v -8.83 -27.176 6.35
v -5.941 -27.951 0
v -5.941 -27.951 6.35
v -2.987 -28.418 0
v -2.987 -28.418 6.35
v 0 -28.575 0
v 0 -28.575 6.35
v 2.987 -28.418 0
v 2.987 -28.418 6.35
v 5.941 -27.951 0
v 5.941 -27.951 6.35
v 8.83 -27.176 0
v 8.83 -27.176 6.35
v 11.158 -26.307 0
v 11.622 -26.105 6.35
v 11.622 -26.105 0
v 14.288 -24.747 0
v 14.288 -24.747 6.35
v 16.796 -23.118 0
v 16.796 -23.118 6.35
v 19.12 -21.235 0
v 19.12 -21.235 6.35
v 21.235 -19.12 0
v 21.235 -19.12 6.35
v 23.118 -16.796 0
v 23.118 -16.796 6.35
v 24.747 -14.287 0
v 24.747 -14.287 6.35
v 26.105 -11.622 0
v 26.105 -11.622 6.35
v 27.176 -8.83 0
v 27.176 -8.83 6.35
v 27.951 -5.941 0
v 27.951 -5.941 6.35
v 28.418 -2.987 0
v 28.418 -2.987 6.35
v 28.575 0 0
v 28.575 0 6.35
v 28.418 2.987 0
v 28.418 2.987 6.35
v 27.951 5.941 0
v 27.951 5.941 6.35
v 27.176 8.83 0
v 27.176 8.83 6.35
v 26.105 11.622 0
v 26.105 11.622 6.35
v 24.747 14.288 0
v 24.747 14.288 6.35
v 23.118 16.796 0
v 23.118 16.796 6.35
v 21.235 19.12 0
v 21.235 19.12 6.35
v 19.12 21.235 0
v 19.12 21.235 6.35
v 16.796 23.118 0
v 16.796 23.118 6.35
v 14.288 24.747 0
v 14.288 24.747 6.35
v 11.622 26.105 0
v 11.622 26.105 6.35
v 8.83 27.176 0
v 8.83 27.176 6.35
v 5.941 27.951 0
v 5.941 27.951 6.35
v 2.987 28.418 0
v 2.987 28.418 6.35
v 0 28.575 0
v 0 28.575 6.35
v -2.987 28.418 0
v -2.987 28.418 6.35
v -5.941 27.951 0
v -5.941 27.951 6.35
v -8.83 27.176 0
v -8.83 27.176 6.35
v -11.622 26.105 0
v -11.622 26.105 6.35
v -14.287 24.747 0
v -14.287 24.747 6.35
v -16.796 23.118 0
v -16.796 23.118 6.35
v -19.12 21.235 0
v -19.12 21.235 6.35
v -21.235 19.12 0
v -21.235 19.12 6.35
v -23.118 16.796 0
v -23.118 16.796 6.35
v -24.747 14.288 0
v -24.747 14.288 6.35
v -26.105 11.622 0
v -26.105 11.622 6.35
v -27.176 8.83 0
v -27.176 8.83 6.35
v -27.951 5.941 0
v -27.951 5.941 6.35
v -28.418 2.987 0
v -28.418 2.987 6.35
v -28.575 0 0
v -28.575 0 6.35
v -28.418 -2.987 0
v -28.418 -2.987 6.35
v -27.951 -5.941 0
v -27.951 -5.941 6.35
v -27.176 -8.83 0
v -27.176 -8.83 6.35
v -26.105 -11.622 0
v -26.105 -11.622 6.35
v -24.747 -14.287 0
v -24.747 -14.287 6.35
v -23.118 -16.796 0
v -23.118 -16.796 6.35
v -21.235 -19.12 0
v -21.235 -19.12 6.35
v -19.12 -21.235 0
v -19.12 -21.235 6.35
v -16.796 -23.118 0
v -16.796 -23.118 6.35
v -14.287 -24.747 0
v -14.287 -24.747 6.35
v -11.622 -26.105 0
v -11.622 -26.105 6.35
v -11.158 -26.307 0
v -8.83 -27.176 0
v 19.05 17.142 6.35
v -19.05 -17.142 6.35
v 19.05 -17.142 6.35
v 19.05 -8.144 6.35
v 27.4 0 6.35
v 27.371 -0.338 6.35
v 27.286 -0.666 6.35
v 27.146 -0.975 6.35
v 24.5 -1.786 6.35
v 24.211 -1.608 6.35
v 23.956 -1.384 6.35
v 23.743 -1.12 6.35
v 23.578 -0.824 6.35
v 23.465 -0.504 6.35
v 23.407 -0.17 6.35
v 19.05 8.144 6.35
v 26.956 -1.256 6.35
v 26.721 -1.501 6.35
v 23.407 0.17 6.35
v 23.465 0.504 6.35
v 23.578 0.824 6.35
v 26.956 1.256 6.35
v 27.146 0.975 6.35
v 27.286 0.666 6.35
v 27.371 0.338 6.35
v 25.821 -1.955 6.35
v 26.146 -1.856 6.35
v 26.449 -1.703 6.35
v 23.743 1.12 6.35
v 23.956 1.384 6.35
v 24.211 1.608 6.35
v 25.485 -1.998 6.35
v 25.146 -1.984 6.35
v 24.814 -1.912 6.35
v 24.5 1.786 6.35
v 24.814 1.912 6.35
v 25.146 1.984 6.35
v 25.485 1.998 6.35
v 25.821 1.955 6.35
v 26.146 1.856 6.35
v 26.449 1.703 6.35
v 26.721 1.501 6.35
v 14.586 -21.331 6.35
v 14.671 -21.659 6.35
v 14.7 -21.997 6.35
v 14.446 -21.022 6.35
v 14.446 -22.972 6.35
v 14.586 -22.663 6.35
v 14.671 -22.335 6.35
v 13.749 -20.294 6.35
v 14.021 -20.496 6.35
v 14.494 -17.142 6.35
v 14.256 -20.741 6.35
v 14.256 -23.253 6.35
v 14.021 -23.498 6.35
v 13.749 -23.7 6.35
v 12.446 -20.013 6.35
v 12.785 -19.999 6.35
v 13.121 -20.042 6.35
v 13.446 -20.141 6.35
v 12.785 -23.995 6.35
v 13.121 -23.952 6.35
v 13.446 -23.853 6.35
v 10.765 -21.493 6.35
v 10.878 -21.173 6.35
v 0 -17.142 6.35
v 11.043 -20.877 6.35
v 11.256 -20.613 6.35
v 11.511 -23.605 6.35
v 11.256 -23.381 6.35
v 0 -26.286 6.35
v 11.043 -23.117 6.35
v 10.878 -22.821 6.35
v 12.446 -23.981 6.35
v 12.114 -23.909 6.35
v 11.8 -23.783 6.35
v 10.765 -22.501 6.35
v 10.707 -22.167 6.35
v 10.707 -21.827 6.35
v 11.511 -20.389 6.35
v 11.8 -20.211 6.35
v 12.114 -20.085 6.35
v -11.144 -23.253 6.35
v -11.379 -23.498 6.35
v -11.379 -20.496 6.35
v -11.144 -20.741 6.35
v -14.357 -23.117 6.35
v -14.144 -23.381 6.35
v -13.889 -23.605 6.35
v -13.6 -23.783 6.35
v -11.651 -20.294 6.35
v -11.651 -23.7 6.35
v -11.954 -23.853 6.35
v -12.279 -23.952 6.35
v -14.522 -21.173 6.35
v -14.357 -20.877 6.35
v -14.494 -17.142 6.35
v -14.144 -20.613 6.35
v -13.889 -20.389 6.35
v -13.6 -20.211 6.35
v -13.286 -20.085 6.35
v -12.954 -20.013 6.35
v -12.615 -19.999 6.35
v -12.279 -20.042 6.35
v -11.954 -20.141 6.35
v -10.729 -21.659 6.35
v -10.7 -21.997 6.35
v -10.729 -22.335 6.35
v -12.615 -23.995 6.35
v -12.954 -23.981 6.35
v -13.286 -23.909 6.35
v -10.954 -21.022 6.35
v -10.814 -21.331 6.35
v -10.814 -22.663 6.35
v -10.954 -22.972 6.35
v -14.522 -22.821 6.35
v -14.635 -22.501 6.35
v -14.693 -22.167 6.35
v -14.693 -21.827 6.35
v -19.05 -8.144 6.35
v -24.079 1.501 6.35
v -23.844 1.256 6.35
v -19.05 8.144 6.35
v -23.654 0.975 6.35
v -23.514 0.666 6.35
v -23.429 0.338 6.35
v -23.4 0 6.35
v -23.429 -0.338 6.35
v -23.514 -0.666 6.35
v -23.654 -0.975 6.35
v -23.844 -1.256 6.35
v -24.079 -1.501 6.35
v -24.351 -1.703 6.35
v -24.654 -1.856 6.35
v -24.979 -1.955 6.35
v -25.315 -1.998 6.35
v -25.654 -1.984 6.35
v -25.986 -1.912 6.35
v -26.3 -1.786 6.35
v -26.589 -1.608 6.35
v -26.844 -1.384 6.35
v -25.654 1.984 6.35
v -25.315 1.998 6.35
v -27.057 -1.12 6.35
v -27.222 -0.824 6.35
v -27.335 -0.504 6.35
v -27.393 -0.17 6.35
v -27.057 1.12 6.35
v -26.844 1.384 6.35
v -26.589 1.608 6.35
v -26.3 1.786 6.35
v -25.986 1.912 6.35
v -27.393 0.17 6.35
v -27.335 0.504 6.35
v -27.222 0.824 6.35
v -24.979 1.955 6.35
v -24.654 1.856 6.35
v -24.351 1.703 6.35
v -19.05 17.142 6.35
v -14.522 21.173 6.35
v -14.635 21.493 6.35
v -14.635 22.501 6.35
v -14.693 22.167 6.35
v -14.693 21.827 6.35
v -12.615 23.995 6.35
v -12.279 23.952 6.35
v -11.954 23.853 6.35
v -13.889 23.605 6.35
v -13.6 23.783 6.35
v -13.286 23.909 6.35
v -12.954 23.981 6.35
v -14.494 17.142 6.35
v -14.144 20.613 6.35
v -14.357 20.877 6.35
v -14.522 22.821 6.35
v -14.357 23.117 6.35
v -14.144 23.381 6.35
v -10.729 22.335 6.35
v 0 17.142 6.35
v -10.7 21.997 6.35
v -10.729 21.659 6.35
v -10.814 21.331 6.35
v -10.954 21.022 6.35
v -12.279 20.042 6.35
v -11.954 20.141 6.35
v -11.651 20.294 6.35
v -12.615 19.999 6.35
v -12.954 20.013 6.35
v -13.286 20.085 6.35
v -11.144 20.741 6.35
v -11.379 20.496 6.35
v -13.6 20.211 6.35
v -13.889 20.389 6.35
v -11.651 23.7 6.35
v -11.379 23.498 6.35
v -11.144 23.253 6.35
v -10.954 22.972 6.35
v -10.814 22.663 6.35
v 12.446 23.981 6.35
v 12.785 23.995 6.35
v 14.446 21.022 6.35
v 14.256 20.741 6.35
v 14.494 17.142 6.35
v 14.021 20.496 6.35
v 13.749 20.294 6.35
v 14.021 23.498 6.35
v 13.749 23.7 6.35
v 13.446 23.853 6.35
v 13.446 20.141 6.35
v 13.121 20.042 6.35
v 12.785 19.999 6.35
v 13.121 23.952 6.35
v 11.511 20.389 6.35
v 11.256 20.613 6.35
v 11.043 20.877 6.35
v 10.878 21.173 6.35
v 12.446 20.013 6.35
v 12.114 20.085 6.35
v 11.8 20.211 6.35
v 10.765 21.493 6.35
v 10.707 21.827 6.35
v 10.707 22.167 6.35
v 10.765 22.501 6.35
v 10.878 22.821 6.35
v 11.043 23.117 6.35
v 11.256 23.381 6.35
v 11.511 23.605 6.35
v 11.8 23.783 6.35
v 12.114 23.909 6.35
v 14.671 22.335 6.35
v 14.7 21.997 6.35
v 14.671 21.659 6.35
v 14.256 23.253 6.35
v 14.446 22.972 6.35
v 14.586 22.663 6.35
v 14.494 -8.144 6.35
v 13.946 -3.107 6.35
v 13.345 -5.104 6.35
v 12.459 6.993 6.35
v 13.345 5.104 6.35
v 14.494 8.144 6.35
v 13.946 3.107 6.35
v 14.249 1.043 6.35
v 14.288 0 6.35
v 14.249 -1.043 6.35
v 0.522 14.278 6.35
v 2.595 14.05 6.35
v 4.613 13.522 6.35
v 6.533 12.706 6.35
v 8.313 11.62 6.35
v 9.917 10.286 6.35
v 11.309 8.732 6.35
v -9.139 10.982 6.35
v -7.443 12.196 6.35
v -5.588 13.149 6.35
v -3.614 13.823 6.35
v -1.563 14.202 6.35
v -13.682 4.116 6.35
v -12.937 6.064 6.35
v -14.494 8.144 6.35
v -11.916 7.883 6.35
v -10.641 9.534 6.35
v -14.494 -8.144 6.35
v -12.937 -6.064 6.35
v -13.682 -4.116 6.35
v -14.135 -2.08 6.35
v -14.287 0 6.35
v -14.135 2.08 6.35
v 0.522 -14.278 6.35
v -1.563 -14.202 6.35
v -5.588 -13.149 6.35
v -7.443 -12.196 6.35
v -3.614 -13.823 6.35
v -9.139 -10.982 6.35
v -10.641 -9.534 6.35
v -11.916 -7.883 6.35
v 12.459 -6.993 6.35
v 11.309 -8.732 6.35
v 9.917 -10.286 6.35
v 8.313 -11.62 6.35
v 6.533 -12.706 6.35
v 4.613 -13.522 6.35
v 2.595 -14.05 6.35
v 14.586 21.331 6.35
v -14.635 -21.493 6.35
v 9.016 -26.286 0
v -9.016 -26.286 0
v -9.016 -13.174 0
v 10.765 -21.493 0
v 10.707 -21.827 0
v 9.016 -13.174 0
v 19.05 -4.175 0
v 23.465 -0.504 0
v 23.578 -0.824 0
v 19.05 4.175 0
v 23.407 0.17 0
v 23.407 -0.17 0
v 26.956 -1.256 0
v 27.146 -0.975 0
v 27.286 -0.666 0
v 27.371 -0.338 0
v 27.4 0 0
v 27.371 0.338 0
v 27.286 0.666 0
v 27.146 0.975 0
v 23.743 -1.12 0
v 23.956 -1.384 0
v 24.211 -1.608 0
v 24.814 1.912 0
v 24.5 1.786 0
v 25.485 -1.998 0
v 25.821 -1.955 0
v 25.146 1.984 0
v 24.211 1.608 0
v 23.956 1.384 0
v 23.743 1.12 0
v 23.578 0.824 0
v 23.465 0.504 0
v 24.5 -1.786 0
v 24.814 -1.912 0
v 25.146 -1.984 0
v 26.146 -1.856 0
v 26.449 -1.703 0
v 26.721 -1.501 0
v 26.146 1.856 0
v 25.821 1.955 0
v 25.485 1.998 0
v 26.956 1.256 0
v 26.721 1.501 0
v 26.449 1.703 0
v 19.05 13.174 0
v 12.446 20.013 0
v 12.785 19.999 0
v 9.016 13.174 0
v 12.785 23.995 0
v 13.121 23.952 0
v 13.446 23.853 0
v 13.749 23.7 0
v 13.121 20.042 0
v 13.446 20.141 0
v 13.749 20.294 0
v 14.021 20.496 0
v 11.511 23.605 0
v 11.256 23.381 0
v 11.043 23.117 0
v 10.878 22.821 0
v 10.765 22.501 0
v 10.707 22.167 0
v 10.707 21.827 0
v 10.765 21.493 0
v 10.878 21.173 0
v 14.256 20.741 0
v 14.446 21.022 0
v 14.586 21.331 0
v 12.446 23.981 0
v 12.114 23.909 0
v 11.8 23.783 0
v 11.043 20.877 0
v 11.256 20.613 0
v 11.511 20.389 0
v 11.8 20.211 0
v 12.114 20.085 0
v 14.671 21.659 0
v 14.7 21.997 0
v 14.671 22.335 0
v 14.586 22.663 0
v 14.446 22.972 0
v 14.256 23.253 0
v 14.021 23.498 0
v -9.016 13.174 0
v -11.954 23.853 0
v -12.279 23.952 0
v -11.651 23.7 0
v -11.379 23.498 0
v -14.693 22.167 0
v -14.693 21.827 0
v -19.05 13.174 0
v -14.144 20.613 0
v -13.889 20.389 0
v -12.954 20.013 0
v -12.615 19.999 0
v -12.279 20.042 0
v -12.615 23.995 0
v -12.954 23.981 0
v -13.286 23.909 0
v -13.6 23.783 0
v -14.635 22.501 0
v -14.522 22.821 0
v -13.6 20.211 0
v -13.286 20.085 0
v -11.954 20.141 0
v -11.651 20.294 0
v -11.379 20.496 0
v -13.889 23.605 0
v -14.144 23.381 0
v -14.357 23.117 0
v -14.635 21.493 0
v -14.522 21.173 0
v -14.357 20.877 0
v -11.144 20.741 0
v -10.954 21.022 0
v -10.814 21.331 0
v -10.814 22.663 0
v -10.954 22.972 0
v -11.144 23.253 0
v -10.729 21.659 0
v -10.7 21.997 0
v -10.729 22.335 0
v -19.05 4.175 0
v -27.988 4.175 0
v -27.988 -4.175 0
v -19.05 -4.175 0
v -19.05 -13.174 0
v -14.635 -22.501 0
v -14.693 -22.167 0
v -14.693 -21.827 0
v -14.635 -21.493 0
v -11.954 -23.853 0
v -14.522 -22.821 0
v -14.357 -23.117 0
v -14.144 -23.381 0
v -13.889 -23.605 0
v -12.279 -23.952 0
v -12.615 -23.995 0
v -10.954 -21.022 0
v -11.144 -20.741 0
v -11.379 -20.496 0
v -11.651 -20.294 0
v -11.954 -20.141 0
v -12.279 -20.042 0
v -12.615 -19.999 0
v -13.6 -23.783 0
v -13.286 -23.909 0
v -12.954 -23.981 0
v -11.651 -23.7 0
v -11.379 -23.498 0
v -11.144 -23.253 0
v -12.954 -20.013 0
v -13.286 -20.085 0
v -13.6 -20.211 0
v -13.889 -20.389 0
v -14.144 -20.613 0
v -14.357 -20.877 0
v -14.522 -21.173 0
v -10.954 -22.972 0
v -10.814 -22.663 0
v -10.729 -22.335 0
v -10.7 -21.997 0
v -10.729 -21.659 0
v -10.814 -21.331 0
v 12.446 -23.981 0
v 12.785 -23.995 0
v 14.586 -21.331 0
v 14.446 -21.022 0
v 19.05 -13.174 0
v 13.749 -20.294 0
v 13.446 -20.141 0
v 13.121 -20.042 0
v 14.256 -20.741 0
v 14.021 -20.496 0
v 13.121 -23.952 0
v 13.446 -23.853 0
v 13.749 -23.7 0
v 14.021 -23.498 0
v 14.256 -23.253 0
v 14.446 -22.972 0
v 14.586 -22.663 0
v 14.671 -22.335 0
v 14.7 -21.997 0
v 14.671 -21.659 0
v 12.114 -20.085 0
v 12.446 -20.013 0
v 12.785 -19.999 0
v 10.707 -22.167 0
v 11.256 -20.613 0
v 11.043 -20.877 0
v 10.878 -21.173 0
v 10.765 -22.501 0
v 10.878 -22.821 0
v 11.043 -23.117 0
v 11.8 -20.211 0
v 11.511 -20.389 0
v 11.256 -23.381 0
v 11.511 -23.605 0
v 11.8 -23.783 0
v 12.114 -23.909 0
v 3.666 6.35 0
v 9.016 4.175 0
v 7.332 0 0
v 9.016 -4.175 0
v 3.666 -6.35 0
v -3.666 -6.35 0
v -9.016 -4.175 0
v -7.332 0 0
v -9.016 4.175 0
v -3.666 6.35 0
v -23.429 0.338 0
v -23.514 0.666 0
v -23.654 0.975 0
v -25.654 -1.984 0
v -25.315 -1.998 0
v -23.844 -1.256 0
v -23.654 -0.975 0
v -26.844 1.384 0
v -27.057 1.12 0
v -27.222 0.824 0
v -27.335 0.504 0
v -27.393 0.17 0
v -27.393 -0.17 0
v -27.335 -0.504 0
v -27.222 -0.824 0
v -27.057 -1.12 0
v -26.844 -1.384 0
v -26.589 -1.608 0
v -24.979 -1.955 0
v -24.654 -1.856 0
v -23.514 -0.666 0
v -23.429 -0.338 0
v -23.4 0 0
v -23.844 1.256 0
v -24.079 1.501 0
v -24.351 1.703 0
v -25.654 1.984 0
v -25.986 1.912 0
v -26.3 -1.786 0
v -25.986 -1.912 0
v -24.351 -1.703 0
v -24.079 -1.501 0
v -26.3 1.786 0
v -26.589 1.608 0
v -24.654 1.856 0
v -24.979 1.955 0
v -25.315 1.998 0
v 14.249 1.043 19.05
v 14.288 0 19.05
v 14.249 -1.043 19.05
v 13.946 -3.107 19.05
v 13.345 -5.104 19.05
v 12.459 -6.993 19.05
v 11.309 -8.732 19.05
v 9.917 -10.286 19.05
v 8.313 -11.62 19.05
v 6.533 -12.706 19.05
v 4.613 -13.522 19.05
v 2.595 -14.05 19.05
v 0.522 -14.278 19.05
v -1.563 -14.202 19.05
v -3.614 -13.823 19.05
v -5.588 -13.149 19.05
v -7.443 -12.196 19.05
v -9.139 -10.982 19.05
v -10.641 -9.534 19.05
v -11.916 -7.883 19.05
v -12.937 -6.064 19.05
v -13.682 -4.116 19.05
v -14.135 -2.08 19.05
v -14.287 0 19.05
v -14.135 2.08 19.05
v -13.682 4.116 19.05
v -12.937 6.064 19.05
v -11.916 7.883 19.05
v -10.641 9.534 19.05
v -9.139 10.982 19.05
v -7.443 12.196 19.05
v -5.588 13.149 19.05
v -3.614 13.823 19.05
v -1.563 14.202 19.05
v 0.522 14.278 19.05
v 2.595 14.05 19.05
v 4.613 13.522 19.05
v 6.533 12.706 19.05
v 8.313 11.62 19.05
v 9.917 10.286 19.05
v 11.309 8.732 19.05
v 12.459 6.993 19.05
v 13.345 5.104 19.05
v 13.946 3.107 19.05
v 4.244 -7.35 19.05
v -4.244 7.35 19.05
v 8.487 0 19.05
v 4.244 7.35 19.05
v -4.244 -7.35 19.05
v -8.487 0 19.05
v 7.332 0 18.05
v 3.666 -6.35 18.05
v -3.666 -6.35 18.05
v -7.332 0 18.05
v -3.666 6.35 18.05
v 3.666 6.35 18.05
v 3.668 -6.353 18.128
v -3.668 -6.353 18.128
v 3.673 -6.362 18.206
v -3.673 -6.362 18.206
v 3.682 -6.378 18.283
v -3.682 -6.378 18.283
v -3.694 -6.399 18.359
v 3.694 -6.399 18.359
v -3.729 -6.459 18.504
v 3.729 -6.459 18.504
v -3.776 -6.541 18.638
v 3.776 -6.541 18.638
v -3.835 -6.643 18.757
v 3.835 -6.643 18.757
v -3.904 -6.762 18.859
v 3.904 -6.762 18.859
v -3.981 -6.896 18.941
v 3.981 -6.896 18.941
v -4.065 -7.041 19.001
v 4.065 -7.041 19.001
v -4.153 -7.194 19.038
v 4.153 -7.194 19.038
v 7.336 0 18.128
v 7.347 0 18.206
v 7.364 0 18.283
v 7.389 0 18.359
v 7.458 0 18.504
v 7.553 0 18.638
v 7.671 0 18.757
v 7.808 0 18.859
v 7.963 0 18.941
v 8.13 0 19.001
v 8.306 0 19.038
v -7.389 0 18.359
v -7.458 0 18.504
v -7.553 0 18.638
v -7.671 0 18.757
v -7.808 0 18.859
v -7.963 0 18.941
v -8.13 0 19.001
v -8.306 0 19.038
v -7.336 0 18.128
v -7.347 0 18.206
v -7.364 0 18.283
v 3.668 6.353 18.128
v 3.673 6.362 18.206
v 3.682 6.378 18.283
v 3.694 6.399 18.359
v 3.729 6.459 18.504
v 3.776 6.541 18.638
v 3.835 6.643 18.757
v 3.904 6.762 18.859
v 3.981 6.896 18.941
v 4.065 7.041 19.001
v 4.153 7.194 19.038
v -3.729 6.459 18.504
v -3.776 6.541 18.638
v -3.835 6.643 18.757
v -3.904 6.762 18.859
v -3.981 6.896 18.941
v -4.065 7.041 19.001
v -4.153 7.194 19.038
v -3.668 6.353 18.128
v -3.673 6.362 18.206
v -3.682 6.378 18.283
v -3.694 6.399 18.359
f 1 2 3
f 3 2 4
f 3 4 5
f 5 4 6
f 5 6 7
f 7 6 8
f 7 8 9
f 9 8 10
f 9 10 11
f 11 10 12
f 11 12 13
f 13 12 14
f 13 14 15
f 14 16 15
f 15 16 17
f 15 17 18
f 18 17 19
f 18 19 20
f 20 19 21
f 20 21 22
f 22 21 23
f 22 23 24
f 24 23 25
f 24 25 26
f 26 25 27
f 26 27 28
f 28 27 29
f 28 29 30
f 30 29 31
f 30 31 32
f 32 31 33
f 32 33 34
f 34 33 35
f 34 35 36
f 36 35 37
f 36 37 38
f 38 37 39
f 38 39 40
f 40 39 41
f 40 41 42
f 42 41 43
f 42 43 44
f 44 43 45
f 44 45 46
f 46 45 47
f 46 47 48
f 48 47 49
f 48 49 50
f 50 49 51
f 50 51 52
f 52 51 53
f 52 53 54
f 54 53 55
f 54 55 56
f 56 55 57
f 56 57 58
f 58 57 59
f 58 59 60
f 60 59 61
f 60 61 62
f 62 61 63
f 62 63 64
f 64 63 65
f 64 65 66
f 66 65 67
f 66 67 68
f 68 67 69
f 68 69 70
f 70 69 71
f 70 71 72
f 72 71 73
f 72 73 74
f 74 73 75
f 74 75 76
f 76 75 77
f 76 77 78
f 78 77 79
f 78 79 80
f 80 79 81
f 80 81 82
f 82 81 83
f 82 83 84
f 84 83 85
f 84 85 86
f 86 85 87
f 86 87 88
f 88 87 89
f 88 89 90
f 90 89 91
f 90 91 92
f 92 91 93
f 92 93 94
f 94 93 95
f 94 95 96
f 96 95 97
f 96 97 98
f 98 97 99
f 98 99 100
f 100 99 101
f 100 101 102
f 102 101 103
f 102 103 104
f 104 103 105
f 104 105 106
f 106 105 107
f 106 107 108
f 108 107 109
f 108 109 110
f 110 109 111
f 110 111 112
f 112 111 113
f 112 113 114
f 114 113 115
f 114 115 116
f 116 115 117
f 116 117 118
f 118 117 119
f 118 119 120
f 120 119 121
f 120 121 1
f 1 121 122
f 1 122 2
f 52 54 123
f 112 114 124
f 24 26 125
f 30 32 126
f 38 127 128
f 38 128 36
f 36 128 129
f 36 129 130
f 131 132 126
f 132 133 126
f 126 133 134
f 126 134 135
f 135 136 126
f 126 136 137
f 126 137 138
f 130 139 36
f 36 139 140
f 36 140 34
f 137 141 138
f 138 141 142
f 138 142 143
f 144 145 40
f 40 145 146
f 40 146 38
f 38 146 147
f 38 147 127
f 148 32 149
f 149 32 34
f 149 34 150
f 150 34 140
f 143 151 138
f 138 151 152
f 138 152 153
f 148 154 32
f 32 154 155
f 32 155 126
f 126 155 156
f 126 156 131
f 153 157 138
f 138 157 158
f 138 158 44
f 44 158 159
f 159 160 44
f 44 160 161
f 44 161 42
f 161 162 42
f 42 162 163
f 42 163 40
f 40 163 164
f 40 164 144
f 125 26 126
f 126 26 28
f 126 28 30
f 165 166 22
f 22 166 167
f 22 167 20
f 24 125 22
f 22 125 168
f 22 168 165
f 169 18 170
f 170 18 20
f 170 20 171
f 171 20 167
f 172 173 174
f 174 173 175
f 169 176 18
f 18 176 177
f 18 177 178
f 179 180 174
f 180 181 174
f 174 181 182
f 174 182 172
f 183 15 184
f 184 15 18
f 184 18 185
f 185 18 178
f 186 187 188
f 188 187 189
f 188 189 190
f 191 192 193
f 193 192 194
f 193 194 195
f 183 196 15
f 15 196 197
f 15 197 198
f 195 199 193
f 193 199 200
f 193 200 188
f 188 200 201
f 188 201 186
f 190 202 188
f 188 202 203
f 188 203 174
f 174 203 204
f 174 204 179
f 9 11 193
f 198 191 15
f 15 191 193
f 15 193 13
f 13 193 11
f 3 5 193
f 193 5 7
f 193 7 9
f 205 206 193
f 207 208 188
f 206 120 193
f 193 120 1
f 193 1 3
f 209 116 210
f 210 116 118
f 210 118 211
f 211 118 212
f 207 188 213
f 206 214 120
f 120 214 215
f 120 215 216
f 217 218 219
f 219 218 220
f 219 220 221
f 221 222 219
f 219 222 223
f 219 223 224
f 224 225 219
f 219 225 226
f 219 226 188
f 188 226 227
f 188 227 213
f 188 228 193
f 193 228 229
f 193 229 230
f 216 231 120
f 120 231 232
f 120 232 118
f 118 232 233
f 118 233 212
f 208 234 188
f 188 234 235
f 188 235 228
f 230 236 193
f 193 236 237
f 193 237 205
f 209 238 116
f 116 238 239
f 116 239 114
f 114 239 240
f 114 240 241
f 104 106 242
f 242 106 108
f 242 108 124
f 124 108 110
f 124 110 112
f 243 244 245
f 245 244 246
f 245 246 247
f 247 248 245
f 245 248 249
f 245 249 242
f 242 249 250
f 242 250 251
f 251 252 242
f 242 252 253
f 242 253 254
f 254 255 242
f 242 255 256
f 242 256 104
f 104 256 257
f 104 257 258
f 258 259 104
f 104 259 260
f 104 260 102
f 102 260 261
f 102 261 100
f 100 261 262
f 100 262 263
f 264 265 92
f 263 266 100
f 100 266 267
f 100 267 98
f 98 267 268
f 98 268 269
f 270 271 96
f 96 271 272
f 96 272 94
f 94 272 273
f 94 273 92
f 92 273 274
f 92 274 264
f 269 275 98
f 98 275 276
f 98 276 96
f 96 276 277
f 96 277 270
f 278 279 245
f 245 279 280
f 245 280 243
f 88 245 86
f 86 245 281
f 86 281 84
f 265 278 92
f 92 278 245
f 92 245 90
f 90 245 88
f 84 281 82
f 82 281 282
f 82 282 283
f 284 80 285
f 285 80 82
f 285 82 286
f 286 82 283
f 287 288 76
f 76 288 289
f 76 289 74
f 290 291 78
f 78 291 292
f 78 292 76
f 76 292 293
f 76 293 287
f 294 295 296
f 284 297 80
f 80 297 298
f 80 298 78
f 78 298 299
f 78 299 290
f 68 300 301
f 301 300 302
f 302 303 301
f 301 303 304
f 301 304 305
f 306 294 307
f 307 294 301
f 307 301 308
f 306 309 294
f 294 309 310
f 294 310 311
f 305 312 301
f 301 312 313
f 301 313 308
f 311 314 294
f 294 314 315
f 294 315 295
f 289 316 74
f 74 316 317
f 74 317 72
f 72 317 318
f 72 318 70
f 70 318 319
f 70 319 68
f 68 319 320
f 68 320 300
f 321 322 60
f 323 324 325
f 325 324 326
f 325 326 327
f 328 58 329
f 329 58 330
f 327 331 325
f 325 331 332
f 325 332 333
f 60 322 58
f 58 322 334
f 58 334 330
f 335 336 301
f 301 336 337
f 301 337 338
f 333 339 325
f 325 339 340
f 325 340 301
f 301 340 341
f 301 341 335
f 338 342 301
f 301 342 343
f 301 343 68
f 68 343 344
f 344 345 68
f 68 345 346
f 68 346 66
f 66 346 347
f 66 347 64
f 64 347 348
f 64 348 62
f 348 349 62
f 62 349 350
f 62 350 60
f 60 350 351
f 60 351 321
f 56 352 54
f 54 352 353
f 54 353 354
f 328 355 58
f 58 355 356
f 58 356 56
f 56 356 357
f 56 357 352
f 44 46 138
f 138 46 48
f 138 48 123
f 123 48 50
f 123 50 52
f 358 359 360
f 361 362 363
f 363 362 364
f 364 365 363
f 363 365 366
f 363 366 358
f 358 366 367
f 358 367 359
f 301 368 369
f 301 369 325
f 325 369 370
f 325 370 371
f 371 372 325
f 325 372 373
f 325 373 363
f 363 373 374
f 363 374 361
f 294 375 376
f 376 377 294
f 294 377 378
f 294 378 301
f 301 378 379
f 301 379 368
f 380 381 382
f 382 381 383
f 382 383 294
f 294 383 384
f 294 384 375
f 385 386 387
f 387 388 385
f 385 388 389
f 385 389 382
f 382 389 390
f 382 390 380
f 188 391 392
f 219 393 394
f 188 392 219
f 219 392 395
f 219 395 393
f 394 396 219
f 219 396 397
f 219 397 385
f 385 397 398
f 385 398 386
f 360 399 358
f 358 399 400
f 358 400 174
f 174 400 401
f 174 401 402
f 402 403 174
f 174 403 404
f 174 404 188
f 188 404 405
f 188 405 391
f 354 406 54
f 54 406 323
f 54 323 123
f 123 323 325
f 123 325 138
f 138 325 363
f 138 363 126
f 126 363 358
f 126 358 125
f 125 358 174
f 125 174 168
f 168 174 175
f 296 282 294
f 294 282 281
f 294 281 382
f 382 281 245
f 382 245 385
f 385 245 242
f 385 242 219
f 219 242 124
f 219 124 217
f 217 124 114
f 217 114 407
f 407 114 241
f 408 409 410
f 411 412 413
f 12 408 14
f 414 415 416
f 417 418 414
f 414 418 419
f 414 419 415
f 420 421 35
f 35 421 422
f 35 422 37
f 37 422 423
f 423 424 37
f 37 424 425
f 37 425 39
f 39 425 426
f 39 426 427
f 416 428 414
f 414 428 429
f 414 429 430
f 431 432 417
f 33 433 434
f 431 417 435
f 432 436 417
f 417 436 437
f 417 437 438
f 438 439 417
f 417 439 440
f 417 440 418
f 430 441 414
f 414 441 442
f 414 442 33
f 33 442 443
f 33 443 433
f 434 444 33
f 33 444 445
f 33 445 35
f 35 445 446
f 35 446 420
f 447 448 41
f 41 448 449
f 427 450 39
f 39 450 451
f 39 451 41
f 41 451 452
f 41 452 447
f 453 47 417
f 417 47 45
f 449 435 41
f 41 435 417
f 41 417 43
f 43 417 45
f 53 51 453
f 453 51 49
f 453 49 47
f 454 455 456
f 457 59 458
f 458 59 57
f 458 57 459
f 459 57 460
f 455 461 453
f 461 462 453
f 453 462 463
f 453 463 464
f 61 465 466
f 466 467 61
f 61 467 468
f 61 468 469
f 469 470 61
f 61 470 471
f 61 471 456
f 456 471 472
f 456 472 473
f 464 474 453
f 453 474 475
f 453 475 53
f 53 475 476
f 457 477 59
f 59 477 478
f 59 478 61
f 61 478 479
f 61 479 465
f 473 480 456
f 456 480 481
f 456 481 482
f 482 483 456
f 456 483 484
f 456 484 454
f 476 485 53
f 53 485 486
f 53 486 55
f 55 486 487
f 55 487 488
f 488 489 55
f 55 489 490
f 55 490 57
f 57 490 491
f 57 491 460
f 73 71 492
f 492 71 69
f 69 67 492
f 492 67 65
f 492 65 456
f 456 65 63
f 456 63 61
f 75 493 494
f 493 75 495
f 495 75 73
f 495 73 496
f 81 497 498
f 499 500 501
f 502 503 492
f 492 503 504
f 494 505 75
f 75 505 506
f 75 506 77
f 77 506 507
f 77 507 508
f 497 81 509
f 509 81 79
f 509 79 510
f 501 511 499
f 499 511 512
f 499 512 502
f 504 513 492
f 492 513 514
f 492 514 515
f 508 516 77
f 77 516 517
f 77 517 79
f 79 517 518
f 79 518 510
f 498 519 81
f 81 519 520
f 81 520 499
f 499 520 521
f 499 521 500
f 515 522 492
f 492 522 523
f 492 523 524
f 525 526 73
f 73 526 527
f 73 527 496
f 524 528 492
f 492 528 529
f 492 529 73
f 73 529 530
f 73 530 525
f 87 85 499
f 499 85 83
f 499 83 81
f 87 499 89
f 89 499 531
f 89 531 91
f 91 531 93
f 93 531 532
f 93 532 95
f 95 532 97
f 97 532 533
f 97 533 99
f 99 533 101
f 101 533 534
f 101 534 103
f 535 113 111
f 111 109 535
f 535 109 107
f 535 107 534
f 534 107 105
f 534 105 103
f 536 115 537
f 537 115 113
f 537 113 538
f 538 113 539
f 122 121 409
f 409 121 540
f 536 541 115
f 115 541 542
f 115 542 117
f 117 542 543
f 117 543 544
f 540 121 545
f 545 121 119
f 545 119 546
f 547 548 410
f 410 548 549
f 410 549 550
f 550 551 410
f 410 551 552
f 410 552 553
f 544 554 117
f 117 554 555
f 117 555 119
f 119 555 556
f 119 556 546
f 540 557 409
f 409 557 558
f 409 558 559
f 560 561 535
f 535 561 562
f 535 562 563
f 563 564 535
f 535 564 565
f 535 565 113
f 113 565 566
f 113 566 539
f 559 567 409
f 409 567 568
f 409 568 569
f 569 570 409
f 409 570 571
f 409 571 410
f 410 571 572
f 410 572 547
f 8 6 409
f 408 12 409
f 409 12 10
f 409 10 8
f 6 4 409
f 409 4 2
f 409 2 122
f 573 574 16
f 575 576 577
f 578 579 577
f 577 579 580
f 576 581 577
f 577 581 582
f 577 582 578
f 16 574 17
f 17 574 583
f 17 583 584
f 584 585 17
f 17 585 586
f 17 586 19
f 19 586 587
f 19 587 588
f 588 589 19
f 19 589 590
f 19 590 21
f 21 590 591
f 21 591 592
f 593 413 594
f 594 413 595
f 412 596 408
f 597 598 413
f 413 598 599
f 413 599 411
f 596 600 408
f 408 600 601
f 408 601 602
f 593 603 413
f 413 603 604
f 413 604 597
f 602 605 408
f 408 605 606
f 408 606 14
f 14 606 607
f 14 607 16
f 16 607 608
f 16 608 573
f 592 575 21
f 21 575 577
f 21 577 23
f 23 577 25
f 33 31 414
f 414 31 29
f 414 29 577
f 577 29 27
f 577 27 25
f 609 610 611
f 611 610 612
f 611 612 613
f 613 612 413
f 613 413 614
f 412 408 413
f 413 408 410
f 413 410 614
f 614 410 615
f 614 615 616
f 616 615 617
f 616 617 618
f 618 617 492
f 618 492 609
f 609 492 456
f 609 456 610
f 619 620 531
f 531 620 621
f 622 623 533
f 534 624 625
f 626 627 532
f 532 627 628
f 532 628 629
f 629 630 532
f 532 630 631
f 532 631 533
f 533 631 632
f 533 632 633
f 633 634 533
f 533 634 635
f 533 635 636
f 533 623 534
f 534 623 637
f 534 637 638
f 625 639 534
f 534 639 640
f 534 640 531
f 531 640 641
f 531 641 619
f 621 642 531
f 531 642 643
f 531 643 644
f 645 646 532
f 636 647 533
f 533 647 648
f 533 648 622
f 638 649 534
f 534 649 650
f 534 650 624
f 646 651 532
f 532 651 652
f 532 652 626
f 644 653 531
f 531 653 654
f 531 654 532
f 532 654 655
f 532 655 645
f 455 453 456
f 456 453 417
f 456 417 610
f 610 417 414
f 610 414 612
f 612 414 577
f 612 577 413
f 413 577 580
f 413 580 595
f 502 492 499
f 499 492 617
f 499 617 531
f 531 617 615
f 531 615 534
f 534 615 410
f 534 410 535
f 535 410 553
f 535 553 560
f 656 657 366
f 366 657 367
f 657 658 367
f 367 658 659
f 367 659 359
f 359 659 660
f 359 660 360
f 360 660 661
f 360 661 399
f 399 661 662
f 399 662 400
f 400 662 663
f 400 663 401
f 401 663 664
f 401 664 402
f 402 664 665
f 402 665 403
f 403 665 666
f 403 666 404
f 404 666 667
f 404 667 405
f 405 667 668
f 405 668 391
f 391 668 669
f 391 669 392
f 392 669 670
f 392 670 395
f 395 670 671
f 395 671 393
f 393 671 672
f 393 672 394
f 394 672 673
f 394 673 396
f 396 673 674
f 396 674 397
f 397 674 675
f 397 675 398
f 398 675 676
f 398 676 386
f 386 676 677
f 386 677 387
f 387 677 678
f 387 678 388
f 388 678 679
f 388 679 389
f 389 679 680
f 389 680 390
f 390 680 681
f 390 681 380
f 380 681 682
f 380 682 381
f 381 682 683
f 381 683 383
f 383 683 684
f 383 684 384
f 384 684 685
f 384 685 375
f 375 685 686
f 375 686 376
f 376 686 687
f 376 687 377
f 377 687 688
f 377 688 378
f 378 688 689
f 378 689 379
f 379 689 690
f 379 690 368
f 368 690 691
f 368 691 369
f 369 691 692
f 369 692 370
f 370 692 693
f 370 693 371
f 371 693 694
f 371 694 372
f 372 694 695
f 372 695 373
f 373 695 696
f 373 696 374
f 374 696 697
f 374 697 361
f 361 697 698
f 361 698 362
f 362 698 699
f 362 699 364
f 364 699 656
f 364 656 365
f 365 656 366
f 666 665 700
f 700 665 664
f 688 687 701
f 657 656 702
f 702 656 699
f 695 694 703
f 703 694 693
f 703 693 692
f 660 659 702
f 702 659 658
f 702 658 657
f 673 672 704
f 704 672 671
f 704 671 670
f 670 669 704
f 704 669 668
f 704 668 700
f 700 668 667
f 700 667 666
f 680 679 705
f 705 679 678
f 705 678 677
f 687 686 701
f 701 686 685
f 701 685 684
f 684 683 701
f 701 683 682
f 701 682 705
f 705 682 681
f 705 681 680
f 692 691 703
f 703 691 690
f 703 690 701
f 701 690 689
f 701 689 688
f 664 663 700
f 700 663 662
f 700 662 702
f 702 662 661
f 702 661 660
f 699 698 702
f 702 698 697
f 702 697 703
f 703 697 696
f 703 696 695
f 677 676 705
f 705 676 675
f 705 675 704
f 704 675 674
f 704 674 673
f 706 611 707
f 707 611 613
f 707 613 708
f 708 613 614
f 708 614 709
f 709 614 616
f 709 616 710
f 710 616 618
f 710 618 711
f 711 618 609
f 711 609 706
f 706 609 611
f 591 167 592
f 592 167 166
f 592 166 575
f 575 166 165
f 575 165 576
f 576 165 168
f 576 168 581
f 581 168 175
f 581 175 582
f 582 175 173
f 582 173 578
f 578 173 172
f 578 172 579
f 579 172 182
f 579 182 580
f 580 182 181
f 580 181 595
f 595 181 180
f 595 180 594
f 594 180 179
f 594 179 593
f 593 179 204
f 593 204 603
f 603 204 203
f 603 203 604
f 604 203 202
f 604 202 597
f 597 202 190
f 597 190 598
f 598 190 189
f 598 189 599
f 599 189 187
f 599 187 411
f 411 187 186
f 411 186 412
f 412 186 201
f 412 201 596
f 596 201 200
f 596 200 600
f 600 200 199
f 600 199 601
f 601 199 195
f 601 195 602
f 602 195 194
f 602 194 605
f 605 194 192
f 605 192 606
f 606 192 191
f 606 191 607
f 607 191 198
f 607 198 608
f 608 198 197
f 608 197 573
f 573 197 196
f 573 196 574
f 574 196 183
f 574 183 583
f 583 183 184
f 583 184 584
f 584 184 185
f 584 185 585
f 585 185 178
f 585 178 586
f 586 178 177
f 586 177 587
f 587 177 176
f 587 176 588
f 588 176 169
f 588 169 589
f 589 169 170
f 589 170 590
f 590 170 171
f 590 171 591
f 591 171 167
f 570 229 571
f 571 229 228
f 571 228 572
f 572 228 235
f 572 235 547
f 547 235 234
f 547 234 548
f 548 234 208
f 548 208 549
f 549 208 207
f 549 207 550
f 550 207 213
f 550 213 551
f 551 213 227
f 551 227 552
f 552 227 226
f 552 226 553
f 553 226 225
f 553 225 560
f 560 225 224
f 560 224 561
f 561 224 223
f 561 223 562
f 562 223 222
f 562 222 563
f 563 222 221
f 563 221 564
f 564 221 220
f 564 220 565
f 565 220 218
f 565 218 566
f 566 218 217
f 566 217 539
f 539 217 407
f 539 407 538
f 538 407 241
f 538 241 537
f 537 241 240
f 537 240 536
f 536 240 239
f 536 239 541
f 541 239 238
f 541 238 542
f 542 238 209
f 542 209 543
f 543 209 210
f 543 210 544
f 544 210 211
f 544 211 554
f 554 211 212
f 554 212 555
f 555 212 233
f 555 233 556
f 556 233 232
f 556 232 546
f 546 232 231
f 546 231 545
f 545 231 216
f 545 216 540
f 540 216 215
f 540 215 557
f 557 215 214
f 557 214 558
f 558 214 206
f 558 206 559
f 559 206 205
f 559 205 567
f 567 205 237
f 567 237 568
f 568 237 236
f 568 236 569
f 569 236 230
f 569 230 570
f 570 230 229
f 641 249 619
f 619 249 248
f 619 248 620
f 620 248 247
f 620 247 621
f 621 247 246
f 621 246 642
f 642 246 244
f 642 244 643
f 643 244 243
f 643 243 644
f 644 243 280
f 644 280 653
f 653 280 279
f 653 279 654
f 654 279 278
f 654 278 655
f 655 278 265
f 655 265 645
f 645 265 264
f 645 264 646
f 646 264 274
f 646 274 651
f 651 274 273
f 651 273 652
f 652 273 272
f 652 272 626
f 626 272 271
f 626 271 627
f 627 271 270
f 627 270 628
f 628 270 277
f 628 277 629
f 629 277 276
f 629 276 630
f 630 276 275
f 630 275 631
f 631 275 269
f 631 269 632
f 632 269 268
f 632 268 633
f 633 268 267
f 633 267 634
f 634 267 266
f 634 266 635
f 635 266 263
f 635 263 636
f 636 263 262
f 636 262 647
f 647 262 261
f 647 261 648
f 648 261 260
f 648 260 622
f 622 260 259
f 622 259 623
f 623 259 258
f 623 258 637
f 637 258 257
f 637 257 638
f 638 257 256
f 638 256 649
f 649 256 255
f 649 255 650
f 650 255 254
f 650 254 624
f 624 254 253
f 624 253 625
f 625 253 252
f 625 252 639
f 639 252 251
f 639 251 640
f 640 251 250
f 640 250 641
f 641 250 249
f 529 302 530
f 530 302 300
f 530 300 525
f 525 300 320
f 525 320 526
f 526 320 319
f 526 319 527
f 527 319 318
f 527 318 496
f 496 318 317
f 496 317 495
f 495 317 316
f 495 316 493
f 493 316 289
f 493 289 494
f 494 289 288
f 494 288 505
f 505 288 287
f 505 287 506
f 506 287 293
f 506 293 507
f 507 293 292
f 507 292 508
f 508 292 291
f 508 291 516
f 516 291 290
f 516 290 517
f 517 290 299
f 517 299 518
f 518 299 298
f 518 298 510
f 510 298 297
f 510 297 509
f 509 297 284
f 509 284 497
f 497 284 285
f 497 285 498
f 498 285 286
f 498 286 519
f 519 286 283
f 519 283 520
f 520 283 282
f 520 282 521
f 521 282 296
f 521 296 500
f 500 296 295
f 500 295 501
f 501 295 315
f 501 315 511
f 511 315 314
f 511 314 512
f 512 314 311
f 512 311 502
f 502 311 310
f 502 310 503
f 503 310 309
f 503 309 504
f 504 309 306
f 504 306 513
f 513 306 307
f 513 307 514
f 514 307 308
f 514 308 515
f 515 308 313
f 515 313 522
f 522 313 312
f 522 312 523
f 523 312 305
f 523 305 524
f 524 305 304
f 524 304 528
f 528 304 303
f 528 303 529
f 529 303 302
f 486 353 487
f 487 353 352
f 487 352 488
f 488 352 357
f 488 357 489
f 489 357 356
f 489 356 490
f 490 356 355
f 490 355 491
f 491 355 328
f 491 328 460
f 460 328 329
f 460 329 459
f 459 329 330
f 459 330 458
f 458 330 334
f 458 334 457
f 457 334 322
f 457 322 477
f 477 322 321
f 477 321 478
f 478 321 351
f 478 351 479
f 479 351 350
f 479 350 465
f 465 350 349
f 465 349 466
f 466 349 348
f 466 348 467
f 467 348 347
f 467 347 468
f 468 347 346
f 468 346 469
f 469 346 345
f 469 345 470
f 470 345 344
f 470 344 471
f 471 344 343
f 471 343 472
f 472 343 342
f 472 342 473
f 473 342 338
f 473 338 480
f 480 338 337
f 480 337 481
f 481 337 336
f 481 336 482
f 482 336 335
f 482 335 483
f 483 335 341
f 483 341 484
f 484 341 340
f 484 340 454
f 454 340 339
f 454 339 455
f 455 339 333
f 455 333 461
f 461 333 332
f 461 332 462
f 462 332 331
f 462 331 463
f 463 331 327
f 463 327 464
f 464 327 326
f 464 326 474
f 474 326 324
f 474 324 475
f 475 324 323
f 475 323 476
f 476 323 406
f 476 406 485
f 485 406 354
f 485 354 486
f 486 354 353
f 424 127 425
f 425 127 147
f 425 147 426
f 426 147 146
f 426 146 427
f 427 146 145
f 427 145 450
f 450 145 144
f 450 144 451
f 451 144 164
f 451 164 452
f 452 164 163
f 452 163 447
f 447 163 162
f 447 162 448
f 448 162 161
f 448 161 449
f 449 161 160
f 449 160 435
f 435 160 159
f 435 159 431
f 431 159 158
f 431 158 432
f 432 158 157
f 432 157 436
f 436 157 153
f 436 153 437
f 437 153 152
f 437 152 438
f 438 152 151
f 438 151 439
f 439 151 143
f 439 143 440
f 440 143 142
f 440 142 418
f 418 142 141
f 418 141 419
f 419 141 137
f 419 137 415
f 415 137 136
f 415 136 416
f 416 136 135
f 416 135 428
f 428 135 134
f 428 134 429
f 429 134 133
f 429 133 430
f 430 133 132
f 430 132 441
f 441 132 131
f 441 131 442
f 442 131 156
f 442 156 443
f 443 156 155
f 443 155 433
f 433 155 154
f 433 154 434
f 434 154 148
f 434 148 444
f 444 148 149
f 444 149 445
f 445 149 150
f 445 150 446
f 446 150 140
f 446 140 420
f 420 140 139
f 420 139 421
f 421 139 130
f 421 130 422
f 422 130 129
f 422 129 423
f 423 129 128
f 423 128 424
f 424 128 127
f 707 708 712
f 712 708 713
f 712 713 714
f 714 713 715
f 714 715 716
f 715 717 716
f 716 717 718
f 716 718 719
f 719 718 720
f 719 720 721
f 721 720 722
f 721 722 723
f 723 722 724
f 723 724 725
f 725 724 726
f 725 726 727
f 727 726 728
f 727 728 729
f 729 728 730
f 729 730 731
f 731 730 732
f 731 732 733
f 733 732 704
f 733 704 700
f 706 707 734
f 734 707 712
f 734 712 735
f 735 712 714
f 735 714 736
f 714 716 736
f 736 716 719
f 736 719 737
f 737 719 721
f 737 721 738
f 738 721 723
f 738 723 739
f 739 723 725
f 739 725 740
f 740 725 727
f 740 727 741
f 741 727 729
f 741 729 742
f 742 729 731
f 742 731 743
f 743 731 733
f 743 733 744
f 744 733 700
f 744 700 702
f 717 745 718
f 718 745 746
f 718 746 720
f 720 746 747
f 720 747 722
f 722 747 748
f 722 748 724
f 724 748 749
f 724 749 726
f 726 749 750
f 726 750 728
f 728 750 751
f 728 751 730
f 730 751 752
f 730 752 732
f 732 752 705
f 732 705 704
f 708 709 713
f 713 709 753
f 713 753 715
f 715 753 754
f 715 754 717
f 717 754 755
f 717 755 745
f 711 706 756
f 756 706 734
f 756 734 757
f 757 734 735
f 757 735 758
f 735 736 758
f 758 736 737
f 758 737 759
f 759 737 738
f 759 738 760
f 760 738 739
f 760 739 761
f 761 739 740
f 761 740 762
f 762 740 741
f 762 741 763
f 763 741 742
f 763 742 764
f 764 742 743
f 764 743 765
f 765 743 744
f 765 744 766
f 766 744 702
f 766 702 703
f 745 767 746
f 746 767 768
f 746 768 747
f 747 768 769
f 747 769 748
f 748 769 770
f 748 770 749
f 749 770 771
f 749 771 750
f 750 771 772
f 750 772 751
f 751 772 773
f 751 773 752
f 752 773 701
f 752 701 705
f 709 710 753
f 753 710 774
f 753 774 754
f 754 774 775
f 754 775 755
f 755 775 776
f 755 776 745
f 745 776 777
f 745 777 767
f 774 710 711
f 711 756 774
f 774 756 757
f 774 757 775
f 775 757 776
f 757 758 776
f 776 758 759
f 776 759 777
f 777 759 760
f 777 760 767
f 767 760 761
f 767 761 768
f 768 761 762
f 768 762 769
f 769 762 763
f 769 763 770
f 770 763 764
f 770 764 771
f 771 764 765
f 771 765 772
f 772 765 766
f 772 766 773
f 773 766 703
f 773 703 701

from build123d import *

# Parameters (mm, degrees)
SKETCH1_R           = 28.575
BOSS_EXTRUDE1_DEPTH = 6.35
SKETCH2_R           = 14.2875
BOSS_EXTRUDE2_DEPTH = 12.7
CUT_EXTRUDE1_DEPTH  = 20.05
SKETCH4_R           = 2
CUT_EXTRUDE2_DEPTH  = 7.35
FILLET1_R           = 1


with BuildPart() as part:
    # Sketch1 → Boss-Extrude1 (new body)
    with BuildSketch(Plane.XY):
        Circle(SKETCH1_R)
    extrude(amount=BOSS_EXTRUDE1_DEPTH)

    # Sketch2 → Boss-Extrude2 (add)
    with BuildSketch(Plane.XY.offset(6.35)):
        Circle(SKETCH2_R)
    extrude(amount=BOSS_EXTRUDE2_DEPTH)

    # Sketch3 → Cut-Extrude1 (cut, through all)
    with BuildSketch(Plane.XY.offset(19.05)):
        Polygon((7.332348419, 0), (3.666174209, 6.35), (-3.666174209, 6.35), (-7.332348419, 0), (-3.666174209, -6.35), (3.666174209, -6.35), align=None)
    extrude(amount=-CUT_EXTRUDE1_DEPTH, mode=Mode.SUBTRACT)

    # Sketch4 → Cut-Extrude2 (cut, through all)
    with BuildSketch(Plane.XY.offset(6.35)):
        with Locations((25.4, 0)):
            Circle(SKETCH4_R)
        with Locations((12.7, -21.997045256)):
            Circle(SKETCH4_R)
        with Locations((-12.7, -21.997045256)):
            Circle(SKETCH4_R)
        with Locations((-25.4, 0)):
            Circle(SKETCH4_R)
        with Locations((-12.7, 21.997045256)):
            Circle(SKETCH4_R)
        with Locations((12.7, 21.997045256)):
            Circle(SKETCH4_R)
    extrude(amount=-CUT_EXTRUDE2_DEPTH, mode=Mode.SUBTRACT)

    # Fillet1
    fillet1_edges = [part.edges().sort_by_distance(p)[0] for p in [
        (5.499261314, -3.175, 19.05),
        (5.499261314, 3.175, 19.05),
        (0, 6.35, 19.05),
        (-5.499261314, 3.175, 19.05),
        (-5.499261314, -3.175, 19.05),
        (0, -6.35, 19.05),
    ]]
    fillet(fillet1_edges, radius=FILLET1_R)


solid = part.part
